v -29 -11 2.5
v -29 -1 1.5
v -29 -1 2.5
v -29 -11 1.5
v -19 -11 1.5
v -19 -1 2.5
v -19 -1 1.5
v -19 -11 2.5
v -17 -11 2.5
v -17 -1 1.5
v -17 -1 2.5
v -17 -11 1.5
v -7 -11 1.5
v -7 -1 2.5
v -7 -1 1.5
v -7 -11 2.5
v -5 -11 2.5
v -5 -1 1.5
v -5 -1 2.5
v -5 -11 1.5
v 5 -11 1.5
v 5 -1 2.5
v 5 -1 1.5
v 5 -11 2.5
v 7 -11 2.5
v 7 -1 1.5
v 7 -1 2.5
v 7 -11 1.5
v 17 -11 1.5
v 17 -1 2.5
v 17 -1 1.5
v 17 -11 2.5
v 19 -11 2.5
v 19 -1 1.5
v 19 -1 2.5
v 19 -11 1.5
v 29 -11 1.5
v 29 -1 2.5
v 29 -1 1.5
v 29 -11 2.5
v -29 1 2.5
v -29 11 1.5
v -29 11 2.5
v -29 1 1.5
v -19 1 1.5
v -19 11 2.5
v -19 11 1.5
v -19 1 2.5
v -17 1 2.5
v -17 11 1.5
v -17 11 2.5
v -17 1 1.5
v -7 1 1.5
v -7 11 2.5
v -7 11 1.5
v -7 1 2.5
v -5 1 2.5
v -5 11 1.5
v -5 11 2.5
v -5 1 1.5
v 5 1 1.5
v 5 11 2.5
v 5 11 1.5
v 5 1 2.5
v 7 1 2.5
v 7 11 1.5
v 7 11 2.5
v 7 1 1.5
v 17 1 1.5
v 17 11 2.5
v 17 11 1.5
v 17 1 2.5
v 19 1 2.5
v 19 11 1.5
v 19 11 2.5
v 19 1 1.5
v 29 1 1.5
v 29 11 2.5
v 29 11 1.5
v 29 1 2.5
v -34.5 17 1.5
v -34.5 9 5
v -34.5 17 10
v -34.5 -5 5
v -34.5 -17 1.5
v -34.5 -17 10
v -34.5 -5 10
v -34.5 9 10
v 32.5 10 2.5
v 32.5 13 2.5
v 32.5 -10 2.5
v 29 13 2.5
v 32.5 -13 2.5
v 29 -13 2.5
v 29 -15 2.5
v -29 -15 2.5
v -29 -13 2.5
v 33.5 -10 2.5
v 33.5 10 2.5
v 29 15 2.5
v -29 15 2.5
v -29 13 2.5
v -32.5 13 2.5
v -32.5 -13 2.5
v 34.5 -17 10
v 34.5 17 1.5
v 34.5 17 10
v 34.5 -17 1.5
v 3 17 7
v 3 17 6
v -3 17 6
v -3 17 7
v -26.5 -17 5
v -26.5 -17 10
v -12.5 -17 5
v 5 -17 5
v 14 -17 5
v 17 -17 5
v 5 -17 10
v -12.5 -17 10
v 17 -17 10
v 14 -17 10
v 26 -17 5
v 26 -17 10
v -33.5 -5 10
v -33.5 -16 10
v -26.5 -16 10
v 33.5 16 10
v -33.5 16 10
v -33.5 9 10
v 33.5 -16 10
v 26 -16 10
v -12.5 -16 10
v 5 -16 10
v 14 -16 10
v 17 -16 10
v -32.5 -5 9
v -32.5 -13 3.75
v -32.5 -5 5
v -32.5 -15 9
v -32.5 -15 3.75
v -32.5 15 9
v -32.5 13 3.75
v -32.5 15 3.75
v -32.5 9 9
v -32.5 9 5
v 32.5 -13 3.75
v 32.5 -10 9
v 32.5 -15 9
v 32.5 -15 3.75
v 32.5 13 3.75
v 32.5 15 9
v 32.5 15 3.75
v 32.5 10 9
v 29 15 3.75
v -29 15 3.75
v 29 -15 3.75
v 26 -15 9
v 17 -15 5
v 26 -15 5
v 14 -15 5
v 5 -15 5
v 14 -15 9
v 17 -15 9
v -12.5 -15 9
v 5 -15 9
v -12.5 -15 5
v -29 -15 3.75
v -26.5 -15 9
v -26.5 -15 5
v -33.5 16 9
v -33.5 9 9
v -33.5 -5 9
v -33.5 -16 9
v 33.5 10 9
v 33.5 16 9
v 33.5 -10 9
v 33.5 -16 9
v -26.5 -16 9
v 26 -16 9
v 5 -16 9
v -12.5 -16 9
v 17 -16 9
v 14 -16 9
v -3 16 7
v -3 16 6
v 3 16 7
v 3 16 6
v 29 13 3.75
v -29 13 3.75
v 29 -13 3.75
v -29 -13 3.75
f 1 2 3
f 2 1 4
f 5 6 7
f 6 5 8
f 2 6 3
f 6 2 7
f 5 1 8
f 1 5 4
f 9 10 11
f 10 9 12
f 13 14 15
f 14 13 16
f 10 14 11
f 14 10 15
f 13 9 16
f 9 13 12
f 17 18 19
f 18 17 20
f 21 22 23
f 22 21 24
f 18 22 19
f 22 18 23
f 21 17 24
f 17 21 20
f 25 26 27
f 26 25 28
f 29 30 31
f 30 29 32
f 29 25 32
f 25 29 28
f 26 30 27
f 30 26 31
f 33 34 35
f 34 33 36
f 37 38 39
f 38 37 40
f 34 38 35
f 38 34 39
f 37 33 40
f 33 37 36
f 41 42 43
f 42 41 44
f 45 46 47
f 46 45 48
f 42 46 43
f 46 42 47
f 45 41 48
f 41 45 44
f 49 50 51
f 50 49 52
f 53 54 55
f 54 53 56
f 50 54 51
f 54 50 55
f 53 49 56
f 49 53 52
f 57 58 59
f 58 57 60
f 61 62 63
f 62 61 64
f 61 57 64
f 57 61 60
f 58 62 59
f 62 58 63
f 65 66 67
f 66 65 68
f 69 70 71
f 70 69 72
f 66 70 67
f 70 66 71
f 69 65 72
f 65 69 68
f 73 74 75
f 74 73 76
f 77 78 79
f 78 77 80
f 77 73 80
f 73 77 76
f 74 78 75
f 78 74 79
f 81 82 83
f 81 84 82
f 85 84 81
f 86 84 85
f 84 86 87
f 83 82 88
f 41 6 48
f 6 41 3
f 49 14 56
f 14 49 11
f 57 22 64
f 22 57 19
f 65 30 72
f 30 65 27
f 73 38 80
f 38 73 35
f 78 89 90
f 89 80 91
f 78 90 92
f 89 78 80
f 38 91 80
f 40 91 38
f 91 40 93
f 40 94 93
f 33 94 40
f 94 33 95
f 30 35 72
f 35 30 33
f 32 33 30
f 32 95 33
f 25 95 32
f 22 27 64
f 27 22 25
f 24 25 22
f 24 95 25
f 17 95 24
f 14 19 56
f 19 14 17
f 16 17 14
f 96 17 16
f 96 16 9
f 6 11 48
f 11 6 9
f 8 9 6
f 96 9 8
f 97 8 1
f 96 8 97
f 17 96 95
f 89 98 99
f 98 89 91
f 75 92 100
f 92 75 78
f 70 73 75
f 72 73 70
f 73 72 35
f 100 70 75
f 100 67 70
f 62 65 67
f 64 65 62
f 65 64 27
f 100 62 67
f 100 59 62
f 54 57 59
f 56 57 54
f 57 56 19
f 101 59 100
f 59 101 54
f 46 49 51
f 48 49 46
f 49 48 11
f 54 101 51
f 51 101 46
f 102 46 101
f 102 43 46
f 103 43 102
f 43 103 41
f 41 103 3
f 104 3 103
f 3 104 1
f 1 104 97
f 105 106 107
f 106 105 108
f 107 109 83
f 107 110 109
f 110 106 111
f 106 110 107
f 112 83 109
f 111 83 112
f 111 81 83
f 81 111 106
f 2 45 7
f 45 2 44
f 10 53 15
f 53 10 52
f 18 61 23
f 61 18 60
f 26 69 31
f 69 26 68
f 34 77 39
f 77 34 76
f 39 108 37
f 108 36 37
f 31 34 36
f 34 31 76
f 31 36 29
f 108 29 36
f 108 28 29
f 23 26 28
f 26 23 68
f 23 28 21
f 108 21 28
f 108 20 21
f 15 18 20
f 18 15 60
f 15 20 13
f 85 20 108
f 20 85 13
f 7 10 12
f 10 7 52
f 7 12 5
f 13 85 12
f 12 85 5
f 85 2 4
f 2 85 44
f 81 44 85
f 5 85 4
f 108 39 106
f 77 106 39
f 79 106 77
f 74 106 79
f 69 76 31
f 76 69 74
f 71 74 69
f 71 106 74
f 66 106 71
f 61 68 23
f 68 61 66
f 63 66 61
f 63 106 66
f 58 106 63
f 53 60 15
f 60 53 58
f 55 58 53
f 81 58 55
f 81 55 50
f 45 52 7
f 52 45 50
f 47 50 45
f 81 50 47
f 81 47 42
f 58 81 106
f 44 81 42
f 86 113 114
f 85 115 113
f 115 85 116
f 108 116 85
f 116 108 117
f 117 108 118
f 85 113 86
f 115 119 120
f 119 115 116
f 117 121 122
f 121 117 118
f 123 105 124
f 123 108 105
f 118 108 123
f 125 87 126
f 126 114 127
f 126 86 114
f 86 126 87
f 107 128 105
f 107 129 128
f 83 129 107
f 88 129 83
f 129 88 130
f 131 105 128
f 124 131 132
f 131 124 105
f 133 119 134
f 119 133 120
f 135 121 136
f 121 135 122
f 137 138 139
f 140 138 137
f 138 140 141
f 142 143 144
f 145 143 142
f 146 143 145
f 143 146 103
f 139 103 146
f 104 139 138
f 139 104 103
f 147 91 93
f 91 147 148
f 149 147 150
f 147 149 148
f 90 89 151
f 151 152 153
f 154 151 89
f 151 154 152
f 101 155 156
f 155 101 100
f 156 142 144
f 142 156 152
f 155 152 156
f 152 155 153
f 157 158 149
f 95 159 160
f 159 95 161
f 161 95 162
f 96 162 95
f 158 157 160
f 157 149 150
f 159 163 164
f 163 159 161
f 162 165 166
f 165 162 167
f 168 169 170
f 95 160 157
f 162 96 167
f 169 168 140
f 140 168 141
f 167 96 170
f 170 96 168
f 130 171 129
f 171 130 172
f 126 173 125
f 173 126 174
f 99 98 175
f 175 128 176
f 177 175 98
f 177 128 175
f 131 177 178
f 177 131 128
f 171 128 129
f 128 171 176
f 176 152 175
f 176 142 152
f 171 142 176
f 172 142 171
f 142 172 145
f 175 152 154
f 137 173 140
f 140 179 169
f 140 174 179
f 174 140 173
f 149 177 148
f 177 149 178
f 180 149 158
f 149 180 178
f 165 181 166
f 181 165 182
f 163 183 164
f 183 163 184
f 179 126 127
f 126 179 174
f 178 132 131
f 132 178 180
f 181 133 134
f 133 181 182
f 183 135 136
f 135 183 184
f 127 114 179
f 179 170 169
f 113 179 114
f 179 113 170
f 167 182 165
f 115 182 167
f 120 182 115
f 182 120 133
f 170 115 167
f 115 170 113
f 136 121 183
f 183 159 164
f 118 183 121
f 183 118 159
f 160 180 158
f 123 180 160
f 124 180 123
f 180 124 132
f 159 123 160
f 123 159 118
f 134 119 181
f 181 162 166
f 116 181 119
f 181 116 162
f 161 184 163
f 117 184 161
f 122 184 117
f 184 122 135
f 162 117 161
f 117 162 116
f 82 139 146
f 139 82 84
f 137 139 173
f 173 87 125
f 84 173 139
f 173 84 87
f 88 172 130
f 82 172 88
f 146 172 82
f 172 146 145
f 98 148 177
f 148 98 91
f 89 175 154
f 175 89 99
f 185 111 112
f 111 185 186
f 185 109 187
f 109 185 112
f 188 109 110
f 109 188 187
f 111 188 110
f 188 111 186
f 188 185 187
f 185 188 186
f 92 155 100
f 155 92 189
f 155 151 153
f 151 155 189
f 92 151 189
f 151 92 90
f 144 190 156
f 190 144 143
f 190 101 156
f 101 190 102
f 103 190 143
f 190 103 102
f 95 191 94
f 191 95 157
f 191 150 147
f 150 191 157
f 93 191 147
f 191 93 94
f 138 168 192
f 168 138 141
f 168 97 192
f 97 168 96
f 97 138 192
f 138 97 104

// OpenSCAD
//Bottom
translate([0,0,2]) 
{
    //Drill holes at the bottom
    difference()
    {
        cube([69,34,1], true);
        for (y=[-6:12:6])
        {
            for (x=[-24:12:24])
            {
                translate([x,y,0])
                    cube([10,10,2], true);
            }
        }
    }
}

//Sides
translate([0,0,6]) 
{
    difference()
    {
        cube([69,34,8], true);
        cube([65,30,8], true);
        //Еdge
        translate([0,0,4])
            cube([67,32,2], true);
        //Place for the miniHDMI
        translate([-19.5,-15,4])
            cube([14,32,10], true);
        //Place for the 1st microUSB
        translate([21.5,-15,4])
            cube([9,32,10], true);
        //Place for the 2st microUSB
        translate([9.5,-15,4])
            cube([9,32,10], true);
        //microSD card
        translate([-33.5,2,4])
            cube([2,14,10], true);
        //Leave space for the camera
        translate([33,0,1])
            cube([1,20,10], true);

        //Placeholder for the hanger of the top of the case
        translate([0,16.5,0.5])
            cube([6,1,1], true);
    }
}

//Holders
translate([31,14,3])
    cube([4,2,1.5], true);
translate([-31,14,3])
    cube([4,2,1.5], true);

translate([31,-14,3])
    cube([4,2,1.5], true);
translate([-31,-14,3])
    cube([4,2,1.5], true);
